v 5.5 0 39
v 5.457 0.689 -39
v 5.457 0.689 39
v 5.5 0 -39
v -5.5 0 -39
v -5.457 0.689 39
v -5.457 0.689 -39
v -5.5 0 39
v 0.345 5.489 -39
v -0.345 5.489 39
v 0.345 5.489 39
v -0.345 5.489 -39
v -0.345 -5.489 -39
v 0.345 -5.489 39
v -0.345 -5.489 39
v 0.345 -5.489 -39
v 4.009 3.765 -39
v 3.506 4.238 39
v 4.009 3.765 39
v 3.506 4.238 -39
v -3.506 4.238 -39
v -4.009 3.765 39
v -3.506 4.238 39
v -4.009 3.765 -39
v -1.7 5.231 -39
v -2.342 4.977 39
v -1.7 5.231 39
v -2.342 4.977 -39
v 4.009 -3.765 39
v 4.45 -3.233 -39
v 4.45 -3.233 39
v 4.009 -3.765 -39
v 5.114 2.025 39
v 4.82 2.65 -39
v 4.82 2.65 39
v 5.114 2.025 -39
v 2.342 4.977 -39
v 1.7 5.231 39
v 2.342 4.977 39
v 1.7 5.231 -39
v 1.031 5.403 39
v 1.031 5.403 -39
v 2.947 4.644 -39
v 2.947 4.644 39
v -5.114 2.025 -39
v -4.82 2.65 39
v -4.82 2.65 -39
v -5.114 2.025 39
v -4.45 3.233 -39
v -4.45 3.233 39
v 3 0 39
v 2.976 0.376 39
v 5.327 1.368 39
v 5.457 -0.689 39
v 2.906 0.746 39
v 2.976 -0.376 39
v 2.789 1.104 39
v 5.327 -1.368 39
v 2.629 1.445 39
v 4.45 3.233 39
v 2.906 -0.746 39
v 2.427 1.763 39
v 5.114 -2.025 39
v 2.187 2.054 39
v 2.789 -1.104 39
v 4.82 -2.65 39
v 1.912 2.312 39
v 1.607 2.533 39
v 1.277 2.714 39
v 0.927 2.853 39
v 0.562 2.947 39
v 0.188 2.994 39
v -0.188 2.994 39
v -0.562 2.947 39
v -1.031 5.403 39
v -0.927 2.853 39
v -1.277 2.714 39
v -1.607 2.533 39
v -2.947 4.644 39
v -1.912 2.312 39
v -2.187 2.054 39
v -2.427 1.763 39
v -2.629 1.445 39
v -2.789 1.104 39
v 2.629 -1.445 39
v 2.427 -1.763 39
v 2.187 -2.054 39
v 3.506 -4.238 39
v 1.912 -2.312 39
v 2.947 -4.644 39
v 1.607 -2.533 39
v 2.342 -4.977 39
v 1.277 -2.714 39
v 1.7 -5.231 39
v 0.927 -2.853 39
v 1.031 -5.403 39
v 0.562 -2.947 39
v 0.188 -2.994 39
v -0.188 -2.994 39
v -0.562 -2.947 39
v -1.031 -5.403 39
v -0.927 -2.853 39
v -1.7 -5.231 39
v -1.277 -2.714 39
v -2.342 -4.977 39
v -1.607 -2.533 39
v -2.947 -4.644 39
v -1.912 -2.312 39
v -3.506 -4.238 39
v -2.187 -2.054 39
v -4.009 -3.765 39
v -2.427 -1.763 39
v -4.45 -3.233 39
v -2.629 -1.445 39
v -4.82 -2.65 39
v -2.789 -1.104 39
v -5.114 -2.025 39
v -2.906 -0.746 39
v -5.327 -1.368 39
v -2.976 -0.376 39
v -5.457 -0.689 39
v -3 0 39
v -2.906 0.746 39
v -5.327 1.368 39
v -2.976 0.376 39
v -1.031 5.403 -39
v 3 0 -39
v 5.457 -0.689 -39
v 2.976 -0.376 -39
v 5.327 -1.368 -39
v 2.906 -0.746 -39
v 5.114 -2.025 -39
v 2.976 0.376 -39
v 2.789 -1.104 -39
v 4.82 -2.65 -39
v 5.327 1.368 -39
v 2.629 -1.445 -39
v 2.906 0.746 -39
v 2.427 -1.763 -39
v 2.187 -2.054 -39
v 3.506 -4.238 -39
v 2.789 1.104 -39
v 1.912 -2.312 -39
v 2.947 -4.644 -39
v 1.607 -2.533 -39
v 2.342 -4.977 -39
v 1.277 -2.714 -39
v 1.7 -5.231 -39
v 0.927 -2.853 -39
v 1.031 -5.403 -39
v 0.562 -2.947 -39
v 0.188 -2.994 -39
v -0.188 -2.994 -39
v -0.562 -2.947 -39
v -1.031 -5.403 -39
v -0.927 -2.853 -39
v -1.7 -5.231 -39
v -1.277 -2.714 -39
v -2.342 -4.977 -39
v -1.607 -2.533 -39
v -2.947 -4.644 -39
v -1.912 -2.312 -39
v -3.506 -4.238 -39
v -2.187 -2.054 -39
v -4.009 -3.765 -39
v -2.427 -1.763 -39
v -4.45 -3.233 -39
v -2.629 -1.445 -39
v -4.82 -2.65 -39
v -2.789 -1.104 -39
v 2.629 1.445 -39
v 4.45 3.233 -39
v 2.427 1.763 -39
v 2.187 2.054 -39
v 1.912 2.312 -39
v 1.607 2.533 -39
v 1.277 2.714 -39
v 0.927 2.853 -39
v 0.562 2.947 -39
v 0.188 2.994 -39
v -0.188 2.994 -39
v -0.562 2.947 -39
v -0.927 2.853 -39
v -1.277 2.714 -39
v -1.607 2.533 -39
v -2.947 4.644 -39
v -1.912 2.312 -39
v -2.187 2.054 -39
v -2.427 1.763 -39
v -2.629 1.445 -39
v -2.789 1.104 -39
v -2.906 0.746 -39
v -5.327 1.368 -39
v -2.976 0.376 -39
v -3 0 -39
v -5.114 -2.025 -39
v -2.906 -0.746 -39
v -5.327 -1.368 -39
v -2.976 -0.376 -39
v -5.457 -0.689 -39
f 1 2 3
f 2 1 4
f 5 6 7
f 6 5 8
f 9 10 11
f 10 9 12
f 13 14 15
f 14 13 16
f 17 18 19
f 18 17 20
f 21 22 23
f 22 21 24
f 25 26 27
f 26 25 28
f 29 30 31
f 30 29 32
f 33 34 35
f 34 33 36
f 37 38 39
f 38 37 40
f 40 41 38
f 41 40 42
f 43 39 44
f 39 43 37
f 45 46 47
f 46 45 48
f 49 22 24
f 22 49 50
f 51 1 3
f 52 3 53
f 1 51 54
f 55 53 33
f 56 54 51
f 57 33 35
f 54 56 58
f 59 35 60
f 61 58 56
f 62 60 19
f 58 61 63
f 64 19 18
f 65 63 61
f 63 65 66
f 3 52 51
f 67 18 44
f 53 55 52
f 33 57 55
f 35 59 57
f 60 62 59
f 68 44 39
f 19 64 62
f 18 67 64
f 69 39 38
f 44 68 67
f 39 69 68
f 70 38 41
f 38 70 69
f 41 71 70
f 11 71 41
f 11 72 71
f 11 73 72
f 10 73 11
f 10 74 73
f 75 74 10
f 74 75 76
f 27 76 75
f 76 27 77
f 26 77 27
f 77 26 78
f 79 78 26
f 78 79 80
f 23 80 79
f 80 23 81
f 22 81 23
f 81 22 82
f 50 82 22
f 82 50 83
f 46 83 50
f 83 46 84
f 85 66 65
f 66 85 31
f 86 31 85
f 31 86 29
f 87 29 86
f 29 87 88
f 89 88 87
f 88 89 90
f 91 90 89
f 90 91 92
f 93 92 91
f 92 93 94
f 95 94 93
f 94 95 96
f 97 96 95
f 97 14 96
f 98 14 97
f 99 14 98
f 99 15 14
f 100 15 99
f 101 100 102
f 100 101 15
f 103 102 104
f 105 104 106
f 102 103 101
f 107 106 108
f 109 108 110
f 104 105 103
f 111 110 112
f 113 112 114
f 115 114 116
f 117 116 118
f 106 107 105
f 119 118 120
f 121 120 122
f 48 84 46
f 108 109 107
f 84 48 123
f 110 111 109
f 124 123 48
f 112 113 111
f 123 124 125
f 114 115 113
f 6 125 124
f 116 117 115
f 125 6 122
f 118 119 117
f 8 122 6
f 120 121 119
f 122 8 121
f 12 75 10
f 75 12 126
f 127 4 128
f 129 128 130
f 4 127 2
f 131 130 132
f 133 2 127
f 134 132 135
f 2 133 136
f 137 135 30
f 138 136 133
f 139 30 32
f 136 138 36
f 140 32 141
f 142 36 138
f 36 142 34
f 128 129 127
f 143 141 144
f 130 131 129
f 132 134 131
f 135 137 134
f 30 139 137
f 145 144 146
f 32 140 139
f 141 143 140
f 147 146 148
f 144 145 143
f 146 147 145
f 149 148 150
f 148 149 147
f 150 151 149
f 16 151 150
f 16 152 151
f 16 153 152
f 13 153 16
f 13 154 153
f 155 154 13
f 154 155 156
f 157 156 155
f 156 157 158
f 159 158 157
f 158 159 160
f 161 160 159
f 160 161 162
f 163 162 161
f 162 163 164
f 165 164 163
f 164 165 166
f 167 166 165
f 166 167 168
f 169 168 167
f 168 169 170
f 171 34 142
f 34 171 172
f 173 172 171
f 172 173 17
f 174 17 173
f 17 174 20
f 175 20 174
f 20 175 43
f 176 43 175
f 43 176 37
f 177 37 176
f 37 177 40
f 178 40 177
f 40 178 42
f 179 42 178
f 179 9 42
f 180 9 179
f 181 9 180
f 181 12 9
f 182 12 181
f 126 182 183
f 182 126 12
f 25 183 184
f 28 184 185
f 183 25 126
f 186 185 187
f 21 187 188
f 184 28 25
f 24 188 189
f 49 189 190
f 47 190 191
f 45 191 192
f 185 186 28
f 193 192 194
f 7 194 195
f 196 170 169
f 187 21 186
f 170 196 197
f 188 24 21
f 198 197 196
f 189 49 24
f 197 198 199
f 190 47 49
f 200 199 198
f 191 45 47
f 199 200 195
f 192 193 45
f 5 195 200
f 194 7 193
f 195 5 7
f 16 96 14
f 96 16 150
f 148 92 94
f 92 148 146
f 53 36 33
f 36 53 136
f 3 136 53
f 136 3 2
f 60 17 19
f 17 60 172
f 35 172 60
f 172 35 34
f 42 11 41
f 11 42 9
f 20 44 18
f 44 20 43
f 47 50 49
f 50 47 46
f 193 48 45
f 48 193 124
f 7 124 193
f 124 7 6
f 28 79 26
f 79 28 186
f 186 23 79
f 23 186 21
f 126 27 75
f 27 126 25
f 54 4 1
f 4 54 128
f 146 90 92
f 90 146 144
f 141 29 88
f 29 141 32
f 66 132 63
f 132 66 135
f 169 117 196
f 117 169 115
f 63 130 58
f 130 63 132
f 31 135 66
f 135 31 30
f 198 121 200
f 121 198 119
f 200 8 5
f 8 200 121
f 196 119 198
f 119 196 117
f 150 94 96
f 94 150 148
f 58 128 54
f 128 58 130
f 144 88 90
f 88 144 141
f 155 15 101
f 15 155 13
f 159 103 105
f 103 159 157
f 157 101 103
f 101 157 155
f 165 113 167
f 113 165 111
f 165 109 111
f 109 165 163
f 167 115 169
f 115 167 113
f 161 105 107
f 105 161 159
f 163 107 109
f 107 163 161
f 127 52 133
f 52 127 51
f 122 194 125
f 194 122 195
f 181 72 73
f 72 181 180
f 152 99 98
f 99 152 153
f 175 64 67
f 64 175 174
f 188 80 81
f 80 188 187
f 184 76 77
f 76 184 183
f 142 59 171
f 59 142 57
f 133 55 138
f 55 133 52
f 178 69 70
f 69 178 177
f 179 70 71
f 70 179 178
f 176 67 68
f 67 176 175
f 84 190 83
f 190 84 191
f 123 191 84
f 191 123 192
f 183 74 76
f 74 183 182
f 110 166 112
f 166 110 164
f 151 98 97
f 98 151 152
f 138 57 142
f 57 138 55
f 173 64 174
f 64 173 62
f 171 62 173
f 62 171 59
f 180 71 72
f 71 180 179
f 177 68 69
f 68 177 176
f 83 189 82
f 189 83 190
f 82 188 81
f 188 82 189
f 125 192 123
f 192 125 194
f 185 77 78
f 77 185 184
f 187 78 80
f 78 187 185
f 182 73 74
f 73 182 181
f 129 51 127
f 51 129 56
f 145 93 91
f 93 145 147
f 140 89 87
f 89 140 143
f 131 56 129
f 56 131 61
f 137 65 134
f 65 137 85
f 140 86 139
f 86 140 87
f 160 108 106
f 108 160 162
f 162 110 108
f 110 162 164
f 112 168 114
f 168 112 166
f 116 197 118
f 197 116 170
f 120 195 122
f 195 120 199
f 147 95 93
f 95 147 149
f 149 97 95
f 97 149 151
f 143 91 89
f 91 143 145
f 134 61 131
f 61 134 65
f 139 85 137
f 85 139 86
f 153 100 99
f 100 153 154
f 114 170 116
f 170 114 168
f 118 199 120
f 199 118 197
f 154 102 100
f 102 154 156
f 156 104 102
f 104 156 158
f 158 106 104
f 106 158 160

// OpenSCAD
$fn = 50;


difference() {
	union() {
		translate(v = [0, 0, -39.0000000000]) {
			cylinder(h = 78, r = 5.5000000000);
		}
	}
	union() {
		translate(v = [0, 0, -100.0000000000]) {
			cylinder(h = 200, r = 3);
		}
	}
}
